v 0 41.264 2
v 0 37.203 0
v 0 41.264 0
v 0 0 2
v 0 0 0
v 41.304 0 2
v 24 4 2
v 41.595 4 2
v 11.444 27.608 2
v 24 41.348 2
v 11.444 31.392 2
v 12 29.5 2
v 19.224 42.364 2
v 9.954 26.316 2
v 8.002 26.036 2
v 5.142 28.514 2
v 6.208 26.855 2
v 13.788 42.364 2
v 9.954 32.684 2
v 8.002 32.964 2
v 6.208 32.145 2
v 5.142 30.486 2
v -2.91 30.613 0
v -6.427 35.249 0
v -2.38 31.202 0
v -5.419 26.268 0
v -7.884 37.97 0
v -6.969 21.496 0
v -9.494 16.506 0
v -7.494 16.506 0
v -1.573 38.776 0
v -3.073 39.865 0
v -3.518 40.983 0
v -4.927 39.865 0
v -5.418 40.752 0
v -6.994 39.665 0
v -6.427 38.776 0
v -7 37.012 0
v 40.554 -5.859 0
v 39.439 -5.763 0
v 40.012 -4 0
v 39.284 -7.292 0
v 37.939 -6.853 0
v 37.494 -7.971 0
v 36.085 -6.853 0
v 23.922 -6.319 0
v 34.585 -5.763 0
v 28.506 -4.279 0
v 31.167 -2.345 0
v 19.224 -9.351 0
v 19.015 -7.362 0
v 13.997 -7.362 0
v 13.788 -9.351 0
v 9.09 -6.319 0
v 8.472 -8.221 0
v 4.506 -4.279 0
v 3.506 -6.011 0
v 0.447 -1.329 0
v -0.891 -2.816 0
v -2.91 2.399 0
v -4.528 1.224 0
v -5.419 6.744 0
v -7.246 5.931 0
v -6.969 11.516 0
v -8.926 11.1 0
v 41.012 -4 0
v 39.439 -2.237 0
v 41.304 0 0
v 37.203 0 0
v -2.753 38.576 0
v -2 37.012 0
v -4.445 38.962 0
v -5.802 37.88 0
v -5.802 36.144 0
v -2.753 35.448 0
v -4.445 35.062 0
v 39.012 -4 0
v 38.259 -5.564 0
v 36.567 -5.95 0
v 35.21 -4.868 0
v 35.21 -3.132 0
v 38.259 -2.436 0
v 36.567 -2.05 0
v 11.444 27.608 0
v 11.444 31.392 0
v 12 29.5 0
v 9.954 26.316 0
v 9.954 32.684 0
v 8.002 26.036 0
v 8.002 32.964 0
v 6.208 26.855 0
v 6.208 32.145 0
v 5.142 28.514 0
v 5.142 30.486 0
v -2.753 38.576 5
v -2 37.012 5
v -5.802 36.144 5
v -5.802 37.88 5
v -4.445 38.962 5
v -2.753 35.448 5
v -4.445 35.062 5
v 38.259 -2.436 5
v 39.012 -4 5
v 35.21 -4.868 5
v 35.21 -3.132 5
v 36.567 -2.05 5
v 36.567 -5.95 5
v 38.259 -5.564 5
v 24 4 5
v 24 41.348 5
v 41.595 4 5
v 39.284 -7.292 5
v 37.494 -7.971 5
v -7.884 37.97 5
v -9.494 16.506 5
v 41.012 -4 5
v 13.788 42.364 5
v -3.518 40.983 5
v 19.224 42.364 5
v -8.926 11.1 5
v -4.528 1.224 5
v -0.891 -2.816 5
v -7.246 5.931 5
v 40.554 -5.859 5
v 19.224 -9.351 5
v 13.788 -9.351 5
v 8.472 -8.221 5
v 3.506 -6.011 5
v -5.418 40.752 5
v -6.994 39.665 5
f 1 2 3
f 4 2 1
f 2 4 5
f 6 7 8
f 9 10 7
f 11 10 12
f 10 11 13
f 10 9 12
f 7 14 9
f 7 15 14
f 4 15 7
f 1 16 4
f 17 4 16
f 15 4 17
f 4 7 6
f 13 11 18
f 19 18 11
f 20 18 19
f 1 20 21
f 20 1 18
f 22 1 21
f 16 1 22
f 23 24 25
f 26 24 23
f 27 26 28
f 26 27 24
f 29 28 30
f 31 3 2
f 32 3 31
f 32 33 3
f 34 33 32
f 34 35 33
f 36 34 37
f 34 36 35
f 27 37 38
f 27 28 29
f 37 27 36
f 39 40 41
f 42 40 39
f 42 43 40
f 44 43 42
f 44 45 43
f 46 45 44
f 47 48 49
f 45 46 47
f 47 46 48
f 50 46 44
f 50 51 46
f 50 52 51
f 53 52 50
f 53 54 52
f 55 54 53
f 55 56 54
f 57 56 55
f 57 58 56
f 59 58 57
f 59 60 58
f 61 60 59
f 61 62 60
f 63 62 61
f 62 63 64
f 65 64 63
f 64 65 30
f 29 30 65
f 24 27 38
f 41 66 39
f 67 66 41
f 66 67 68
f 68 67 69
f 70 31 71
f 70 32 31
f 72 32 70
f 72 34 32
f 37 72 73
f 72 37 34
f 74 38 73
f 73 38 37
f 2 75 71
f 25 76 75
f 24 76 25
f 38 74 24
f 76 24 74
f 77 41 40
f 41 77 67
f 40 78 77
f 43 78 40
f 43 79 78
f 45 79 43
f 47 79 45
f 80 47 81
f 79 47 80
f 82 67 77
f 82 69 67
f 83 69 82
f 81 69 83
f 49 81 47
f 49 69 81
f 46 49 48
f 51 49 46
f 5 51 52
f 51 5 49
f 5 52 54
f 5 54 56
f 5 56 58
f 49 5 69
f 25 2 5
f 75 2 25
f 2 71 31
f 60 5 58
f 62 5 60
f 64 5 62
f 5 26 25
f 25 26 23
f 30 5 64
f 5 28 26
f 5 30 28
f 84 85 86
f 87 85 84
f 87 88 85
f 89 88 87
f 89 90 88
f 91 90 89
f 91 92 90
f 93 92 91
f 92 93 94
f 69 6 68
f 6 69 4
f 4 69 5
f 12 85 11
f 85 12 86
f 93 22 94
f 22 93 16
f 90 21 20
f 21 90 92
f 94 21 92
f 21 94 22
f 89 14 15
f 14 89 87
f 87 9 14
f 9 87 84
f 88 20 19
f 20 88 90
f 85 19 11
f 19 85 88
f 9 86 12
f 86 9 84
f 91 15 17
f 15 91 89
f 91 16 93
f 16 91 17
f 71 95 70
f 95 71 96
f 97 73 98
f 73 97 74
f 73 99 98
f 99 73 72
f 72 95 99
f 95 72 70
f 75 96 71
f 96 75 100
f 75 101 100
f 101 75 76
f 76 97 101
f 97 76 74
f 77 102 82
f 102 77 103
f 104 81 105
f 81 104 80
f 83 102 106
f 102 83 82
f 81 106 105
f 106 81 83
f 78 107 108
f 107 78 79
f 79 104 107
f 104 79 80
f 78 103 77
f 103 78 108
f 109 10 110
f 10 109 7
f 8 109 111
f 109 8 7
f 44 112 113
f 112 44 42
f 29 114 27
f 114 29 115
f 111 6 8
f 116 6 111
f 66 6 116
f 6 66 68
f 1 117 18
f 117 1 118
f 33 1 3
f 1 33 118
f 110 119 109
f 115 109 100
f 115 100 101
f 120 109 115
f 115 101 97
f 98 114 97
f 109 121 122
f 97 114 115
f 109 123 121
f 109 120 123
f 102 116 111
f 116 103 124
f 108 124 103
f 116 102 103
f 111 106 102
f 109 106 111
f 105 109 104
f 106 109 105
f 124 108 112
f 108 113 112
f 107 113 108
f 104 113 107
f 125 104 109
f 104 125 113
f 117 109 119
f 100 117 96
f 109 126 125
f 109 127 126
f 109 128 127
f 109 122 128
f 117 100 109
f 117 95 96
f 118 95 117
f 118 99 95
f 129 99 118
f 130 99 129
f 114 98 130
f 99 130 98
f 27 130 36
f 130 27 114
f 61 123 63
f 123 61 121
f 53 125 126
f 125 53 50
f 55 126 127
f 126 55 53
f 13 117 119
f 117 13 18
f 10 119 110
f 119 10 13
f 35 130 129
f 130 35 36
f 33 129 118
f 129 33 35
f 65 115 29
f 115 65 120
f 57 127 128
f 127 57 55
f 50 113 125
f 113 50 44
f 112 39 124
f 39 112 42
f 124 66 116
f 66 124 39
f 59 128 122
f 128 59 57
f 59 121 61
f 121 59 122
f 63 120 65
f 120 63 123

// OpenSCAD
//This is the plate that holds the part cooling fan

HoleR = 7/2;
HoleX = 5;
HoleY = 26;
BaseT = 2;

module base(){
color("#ff8899"){
    difference(){
        cube([100,49,BaseT]);
        translate([HoleX+HoleR,HoleY+HoleR,-1])
            cylinder(BaseT*2,HoleR,HoleR,false);
    }
    translate([0,49,0])
    cube([100,BaseT,60]);
}
}


FanHD = 58;
FanT = 15;
FanD = 48;
fs = FanHD / sqrt(2);
module fan(){
    color("#666666"){
        translate([-4,-4,-(FanT)]){
            translate([fs/2,fs/2,FanT/2])
                cylinder(FanT, FanD/2, FanD/2, true);
            hull(){
            translate([0,fs,0])
                cylinder(FanT, 3, 3);
            translate([fs,0,0])
                cylinder(FanT, 3, 3);
            }
            translate([0,fs,0])
                cylinder(30, 2, 2);
            translate([fs,0,0])
                cylinder(30, 2, 2);
        }
    }
}

module extruder(){
    color("#444444")
    translate([24,4,BaseT])
        cube([20,43,43]);
}

//base();
//fan();
//extruder();
T = 5;

difference(){
    translate([-4,-4,T/2]){
        hull(){
            translate([fs/2,fs/2,0])
                cylinder(T, 2+FanD/2, 2+FanD/2, true);
            translate([0,fs,0])
                cylinder(T, 4, 4, true);
            translate([fs,0,0])
                cylinder(T, 4, 4, true);
        }
    }
    union(){
        base();
        fan();
        extruder();
    }
}
